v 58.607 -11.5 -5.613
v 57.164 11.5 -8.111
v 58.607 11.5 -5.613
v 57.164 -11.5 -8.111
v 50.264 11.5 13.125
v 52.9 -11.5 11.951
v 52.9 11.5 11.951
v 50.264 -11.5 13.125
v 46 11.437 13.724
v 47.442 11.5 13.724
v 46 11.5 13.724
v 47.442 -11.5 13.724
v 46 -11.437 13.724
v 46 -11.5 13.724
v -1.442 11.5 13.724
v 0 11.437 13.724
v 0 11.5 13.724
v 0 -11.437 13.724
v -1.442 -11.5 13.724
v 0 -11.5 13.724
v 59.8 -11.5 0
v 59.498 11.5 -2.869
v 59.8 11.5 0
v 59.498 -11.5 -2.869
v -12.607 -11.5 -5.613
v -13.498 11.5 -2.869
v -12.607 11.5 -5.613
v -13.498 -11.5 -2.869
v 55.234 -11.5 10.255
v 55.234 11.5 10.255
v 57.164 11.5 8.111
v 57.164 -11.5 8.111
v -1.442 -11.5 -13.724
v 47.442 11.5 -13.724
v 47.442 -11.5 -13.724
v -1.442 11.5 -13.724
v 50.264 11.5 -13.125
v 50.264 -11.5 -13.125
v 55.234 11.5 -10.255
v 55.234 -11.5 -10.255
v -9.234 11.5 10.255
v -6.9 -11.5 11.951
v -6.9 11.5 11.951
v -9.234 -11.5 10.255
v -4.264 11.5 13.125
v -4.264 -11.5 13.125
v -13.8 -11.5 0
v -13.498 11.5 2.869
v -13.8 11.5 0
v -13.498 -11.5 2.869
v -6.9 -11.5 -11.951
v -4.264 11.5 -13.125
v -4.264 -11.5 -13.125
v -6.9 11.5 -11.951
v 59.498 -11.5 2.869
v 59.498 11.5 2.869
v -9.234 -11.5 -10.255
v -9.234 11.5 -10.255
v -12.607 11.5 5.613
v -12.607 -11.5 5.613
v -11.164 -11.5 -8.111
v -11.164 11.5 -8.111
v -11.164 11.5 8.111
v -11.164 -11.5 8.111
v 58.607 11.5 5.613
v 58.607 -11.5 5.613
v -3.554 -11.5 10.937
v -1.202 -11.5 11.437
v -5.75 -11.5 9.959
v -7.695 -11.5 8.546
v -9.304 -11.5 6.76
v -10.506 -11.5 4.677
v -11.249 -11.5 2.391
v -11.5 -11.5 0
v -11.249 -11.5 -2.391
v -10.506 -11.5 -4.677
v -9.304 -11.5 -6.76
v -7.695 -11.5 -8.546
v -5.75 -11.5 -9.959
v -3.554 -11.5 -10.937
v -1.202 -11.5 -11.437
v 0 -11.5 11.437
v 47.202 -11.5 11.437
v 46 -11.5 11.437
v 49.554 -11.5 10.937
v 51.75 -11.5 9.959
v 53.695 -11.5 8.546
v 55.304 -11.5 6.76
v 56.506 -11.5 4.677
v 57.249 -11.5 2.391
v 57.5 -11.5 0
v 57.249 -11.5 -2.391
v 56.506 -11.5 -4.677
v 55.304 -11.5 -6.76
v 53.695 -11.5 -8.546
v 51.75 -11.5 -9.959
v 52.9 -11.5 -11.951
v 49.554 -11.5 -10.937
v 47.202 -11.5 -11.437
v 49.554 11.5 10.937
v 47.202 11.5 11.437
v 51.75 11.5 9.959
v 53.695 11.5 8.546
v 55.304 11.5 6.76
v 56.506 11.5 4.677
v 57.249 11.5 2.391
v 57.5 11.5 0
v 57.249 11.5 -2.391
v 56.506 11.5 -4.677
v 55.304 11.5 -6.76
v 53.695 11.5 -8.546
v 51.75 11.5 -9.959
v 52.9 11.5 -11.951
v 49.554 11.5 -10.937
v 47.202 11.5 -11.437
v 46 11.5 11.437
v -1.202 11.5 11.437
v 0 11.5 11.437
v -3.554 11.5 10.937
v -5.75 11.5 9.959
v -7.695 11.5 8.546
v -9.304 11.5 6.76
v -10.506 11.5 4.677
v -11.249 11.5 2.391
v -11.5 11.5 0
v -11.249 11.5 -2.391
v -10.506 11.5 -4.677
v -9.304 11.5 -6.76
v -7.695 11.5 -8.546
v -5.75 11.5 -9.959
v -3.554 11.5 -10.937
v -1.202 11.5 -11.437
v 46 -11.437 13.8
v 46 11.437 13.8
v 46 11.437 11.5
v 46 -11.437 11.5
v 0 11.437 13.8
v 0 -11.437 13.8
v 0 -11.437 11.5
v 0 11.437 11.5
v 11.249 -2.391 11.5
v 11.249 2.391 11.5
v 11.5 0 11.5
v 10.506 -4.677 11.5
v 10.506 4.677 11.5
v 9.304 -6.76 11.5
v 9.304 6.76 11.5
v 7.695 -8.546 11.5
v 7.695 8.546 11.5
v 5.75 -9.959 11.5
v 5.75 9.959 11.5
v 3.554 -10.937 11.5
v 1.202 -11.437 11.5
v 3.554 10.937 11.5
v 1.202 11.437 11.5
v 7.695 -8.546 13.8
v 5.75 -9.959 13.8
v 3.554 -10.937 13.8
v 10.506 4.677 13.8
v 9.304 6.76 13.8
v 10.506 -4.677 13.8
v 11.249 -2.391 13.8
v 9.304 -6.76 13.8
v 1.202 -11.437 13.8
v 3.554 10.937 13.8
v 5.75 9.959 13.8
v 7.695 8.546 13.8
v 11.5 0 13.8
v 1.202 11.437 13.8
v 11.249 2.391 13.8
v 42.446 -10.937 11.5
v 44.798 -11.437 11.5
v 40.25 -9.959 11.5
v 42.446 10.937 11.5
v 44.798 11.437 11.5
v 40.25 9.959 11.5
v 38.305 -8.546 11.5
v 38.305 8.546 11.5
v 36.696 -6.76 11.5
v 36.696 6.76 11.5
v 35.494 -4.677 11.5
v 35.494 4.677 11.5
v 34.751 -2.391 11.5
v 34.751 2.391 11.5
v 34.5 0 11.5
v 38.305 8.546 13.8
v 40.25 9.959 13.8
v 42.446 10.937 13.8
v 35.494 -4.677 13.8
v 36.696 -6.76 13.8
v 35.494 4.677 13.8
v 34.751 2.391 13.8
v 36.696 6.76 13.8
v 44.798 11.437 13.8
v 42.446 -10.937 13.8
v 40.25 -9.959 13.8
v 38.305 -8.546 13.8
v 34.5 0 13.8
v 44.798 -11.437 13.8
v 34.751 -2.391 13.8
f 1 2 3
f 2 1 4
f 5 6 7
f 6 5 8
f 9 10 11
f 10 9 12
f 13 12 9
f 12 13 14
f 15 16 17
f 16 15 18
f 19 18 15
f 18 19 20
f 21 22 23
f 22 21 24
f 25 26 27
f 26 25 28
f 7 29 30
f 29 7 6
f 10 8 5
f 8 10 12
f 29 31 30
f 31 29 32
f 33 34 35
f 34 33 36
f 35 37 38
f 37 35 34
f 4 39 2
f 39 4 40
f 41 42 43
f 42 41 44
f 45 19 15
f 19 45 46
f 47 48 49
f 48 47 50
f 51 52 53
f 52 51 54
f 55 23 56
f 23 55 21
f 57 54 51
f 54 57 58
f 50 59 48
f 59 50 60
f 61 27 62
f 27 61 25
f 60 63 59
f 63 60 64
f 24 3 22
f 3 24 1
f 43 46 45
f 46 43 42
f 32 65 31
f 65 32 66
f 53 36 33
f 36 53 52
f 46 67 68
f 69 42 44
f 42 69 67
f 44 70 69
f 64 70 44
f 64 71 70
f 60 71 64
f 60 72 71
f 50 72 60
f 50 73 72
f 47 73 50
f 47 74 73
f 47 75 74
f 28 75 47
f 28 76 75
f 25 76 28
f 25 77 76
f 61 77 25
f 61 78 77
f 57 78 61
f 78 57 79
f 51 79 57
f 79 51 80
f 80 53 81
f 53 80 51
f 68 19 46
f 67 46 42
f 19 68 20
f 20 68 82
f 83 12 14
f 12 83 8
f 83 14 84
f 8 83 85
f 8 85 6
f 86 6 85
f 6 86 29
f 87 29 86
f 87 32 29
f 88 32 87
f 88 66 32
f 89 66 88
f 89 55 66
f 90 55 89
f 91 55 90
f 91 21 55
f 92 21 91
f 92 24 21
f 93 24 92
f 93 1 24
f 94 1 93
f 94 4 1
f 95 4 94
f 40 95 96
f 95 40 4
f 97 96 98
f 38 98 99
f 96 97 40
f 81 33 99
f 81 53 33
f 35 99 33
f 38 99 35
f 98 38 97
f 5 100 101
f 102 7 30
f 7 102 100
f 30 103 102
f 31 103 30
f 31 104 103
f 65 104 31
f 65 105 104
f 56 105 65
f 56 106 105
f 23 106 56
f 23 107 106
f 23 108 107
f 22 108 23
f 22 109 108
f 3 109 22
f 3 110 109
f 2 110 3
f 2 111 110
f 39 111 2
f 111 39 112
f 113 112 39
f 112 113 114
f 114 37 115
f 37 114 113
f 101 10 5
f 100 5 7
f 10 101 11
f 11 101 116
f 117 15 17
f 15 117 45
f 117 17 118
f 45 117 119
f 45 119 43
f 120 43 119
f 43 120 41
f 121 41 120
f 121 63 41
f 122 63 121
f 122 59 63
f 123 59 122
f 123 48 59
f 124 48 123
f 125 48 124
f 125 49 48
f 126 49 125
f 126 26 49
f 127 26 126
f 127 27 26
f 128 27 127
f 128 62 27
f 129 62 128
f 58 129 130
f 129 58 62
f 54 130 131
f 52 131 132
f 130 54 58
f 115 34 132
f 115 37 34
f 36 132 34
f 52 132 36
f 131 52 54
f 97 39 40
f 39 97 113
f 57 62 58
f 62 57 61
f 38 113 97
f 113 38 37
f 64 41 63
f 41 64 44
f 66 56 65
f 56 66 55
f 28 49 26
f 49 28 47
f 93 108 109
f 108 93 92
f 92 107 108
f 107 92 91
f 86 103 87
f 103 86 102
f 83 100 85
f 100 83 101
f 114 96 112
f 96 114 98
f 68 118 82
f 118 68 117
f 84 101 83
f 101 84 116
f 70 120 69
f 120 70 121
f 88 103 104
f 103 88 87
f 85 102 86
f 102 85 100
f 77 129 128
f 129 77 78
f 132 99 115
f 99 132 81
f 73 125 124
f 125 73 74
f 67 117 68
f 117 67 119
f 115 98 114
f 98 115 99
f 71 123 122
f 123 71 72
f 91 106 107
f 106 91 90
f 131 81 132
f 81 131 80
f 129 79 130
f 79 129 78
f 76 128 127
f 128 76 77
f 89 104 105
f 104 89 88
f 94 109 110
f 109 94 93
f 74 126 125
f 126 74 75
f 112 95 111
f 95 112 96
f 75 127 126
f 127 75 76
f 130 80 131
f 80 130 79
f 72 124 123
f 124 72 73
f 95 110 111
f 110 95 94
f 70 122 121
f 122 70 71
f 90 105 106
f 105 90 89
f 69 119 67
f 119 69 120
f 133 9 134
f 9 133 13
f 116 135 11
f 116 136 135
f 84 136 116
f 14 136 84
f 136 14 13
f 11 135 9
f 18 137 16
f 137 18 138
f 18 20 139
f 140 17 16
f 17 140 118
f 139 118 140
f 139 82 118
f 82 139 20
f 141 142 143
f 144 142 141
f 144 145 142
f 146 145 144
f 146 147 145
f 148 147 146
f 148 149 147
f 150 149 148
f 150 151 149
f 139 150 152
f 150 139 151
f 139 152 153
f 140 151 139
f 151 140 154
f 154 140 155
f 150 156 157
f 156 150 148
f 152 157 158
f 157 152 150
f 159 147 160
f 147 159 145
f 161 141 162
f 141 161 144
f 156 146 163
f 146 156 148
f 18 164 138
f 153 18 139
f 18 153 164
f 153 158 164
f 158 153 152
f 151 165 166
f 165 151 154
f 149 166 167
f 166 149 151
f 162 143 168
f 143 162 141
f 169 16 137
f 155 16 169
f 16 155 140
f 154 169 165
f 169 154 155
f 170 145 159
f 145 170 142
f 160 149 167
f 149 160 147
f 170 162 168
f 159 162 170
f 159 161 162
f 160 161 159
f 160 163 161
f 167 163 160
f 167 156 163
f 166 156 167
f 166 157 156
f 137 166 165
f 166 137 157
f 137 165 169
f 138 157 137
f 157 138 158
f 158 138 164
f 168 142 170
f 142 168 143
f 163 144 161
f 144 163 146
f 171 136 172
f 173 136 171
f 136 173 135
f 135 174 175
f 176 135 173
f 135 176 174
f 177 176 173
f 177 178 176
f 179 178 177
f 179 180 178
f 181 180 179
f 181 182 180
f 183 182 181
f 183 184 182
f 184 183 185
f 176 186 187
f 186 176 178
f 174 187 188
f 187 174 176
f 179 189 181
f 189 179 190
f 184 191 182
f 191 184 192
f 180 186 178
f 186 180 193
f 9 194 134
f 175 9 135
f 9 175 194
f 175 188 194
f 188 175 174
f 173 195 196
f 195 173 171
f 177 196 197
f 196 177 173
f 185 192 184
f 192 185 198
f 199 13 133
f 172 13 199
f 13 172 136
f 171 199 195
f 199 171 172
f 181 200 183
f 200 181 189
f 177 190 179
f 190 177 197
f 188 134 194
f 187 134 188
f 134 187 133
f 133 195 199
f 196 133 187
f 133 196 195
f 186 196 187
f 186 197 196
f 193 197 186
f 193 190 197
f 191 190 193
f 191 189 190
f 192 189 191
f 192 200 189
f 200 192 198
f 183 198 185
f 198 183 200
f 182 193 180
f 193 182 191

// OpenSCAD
diam = 23;

module hook() {
    difference() {
        hull() {
            translate( [0*diam, 0, 0] )
                cylinder( d = 1.2*diam, h = diam);
            translate( [2*diam, 0, 0] )
                cylinder( d = 1.2*diam, h = diam);
        }
        
        hull() {
            translate([0*diam, 0, -diam])
                cylinder( d = diam, h = 3*diam );
            translate([2*diam, 0, -diam])
                cylinder( d = diam, h = 3*diam );
        }
        translate([0, 0, -diam])
            cube([ 2*diam, 2*diam, 3*diam ]);
    }   
}

module rounded_edge() {
    difference() {
        cylinder( d = diam, h=0.1*diam );
        translate([0, -diam, -diam])
            cube([ diam, 2*diam, 2*diam]);
    }
}

module hanger() {
    translate([0, 0.5*diam, 0]) rotate([90, 0, 0]) hook();
    translate([0, 0, 0.5*diam]) rotate([0, 0, 180])
        rounded_edge();
    translate([2*diam, 0, 0.5*diam]) rotate([0, 0, 0])
        rounded_edge();
}

hanger();
